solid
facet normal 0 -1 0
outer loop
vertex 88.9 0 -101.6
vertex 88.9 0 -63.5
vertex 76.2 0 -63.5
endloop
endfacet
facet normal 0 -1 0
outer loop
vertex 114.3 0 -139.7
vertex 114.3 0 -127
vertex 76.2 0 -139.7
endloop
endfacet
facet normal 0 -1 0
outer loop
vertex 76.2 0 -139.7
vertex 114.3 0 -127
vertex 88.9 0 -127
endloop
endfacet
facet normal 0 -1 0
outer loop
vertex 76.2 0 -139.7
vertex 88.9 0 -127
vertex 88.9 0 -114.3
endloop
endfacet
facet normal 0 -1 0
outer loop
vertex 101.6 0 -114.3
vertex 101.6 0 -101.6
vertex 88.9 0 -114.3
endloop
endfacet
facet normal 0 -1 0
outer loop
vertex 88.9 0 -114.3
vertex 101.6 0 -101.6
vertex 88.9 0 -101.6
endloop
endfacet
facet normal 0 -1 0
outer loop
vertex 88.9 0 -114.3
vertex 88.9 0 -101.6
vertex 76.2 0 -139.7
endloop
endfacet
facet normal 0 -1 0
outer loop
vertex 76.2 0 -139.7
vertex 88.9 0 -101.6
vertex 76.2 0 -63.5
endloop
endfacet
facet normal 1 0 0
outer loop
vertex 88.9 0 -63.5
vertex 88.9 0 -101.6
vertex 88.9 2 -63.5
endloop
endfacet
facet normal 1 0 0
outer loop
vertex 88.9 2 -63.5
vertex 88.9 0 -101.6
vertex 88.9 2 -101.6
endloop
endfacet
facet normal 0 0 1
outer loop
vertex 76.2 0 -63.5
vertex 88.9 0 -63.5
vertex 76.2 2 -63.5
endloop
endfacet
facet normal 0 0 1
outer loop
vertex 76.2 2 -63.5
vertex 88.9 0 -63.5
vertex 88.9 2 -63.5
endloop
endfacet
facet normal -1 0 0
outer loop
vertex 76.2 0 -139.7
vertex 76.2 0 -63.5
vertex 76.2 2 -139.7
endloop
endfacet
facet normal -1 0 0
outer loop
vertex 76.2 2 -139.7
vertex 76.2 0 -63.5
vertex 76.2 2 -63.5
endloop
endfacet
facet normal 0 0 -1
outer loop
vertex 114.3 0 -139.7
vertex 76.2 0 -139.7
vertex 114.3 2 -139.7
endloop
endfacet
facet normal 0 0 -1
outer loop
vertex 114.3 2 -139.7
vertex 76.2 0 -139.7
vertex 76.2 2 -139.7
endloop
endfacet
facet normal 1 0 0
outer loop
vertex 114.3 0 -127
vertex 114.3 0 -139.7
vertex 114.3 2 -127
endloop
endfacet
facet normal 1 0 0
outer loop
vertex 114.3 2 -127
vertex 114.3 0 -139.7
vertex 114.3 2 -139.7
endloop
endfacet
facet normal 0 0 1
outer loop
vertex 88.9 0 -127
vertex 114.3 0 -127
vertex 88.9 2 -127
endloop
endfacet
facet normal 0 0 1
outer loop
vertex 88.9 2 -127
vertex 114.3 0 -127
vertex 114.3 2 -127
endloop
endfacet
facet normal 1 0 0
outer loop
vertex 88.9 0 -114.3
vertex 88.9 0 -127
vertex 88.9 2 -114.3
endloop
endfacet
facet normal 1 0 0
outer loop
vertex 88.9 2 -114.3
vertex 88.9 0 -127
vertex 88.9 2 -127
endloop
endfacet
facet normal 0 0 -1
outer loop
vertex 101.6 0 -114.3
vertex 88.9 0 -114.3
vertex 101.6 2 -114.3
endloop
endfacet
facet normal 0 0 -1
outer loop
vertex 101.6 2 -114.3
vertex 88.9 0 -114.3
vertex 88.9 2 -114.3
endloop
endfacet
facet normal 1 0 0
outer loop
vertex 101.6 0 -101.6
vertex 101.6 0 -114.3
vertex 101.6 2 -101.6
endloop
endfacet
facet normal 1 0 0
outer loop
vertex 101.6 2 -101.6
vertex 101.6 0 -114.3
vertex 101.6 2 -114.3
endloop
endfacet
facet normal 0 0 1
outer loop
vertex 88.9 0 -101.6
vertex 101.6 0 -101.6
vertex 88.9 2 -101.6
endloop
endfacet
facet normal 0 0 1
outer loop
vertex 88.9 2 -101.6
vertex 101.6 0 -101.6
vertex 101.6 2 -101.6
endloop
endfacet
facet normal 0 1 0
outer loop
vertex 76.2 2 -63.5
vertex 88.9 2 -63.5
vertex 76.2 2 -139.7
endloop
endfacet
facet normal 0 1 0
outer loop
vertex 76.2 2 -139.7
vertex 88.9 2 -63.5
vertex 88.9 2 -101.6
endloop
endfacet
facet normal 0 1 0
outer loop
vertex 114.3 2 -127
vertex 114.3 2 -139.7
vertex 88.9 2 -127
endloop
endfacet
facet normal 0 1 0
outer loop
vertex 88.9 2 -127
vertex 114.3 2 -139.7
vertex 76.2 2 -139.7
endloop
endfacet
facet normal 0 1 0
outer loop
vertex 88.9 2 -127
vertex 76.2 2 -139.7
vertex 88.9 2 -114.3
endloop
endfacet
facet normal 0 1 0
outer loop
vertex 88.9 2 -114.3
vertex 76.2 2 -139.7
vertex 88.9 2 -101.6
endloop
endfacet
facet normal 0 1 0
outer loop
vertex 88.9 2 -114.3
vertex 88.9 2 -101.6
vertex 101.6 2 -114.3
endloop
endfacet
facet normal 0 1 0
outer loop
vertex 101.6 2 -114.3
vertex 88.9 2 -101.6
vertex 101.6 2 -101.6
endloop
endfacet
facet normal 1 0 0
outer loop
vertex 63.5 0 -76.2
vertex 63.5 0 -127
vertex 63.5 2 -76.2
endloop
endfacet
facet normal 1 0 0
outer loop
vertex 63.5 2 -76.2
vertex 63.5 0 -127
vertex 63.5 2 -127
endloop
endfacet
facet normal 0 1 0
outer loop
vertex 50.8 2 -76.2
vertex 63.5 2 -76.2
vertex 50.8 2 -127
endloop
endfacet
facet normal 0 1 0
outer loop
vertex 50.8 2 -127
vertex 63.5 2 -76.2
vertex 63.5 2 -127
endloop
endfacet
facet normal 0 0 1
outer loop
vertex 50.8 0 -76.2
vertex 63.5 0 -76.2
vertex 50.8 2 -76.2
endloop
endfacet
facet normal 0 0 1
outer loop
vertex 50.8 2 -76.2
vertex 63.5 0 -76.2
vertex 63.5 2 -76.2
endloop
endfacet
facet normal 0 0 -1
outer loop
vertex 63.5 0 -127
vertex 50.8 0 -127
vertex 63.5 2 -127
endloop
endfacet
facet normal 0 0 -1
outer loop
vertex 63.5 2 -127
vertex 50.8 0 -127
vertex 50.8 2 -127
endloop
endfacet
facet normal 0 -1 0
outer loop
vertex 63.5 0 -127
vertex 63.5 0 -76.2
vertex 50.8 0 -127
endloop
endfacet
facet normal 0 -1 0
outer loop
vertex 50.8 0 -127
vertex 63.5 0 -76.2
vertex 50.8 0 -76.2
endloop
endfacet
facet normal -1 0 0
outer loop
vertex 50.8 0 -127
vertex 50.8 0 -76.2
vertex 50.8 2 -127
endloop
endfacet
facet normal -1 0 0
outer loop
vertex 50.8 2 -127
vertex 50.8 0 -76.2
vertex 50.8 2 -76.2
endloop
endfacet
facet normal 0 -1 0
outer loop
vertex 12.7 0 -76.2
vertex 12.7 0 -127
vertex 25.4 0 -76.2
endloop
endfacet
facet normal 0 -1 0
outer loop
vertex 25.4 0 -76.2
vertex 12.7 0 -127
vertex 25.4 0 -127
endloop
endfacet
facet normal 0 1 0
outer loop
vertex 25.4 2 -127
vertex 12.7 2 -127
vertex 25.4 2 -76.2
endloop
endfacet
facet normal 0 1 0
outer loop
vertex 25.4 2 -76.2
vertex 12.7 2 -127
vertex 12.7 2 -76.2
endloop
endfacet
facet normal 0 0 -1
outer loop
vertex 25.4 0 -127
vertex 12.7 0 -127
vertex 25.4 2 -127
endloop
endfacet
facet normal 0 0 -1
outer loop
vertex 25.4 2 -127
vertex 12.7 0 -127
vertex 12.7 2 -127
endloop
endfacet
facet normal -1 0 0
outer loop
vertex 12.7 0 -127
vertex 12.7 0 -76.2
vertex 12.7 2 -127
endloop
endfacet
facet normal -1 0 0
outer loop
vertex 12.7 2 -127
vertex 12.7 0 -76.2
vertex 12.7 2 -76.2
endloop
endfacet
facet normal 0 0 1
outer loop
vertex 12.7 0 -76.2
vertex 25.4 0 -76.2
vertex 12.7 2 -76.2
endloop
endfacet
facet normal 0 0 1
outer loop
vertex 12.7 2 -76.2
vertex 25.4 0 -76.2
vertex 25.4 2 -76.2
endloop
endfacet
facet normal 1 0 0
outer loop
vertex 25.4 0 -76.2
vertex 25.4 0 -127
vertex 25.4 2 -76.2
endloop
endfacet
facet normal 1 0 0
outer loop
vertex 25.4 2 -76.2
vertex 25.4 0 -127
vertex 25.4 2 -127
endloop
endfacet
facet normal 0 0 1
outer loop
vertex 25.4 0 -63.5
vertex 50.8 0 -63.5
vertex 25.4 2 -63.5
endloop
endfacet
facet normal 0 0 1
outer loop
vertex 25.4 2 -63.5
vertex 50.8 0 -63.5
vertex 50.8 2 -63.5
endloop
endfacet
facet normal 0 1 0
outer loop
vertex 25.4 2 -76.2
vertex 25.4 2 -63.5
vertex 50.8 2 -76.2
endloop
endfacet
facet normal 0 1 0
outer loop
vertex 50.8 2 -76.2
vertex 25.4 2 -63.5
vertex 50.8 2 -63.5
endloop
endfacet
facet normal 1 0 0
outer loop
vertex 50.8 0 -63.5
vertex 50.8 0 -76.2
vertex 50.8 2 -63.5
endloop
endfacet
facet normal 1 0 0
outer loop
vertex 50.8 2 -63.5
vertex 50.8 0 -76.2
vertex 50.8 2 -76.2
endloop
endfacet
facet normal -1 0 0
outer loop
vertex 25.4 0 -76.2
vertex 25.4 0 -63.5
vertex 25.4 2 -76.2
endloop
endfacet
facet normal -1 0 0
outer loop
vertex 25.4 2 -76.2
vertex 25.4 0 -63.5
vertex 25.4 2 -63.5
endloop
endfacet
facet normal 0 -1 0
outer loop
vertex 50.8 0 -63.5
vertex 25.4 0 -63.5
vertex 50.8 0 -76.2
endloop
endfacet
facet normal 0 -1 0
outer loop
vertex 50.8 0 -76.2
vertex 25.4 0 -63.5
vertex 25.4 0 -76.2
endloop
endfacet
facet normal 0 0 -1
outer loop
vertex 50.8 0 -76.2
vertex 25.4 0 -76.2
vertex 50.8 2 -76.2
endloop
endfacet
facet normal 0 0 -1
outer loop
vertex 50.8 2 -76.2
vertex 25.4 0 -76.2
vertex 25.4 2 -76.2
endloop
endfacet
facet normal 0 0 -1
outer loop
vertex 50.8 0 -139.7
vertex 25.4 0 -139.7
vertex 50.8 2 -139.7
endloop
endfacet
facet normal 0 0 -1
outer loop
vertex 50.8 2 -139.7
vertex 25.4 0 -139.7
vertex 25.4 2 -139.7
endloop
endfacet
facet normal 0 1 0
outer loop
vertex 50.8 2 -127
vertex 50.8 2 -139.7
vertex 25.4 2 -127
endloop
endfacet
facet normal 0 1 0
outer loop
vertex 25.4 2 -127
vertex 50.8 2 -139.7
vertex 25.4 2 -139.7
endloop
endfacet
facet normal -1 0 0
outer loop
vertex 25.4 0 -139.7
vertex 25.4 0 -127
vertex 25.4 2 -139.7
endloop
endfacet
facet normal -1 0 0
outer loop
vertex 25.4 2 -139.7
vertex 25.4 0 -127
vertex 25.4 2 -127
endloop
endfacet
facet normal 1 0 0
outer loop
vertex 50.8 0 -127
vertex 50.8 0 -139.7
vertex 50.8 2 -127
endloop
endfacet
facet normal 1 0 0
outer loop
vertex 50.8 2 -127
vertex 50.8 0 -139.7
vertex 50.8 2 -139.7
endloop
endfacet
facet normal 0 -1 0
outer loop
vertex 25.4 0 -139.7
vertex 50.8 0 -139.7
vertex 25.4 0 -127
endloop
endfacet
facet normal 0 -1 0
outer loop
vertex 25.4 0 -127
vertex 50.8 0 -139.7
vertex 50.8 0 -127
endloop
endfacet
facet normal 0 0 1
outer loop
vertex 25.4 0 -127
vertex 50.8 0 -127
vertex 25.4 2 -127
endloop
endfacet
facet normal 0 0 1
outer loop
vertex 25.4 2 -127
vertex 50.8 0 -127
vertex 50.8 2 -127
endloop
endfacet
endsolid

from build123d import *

# Parameters (mm, degrees)
SKETCH1_W           = 127
SKETCH1_H           = 203.2
BOSS_EXTRUDE1_DEPTH = 2
SKETCH2_W           = 127
SKETCH2_H           = 203.2
CUT_EXTRUDE9_DEPTH  = 2
SKETCH5_W           = 25.4
SKETCH5_H           = 50.8
CUT_EXTRUDE10_DEPTH = 2


with BuildPart() as part:
    # Sketch1 → Boss-Extrude1 (new body)
    with BuildSketch(Plane(origin=(0, 0, 0), x_dir=(1, 0, 0), z_dir=(0, 1, 0))):
        with Locations((63.5, 101.6)):
            Rectangle(SKETCH1_W, SKETCH1_H)
    extrude(amount=BOSS_EXTRUDE1_DEPTH)

    # Sketch2 → Cut-Extrude9 (cut)
    with BuildSketch(Plane(origin=(0, 2, 0), x_dir=(1, 0, 0), z_dir=(0, 1, 0))):
        with Locations((63.5, 101.6)):
            Rectangle(SKETCH2_W, SKETCH2_H)
        Polygon((50.8, 127), (63.5, 127), (63.5, 76.2), (50.8, 76.2), (50.8, 63.5), (25.4, 63.5), (25.4, 76.2), (12.7, 76.2), (12.7, 127), (25.4, 127), (25.4, 139.7), (50.8, 139.7), align=None, mode=Mode.SUBTRACT)
        Polygon((88.9, 101.6), (101.6, 101.6), (101.6, 114.3), (88.9, 114.3), (88.9, 127), (114.3, 127), (114.3, 139.7), (88.9, 139.7), (76.2, 139.7), (76.2, 63.5), (88.9, 63.5), align=None, mode=Mode.SUBTRACT)
    extrude(amount=-CUT_EXTRUDE9_DEPTH, mode=Mode.SUBTRACT)


with BuildPart() as cut_extrude9_piece_1:
    # of the separate pieces the step leaves, piece 1, a body of its own (cut_extrude9_pieces)
    add(part.part.solids().sort_by_distance((50.8, 0, -127))[0])

    # Sketch5 → Cut-Extrude10 (cut)
    with BuildSketch(Plane(origin=(0, 2, 0), x_dir=(1, 0, 0), z_dir=(0, 1, 0))):
        with Locations((38.1, 101.6)):
            Rectangle(SKETCH5_W, SKETCH5_H)
    extrude(amount=-CUT_EXTRUDE10_DEPTH, mode=Mode.SUBTRACT)


with BuildPart() as cut_extrude9_piece_2:
    # of the separate pieces the step leaves, piece 2, a body of its own (cut_extrude9_pieces)
    add(part.part.solids().sort_by_distance((76.2, 0, -63.5))[0])


with BuildPart() as cut_extrude10_piece_1:
    # of the separate pieces the step leaves, piece 1, a body of its own (cut_extrude10_pieces)
    add(cut_extrude9_piece_1.part.solids().sort_by_distance((63.5, 0, -127))[0])


with BuildPart() as cut_extrude10_piece_2:
    # of the separate pieces the step leaves, piece 2, a body of its own (cut_extrude10_pieces)
    add(cut_extrude9_piece_1.part.solids().sort_by_distance((12.7, 0, -76.2))[0])


with BuildPart() as cut_extrude10_piece_3:
    # of the separate pieces the step leaves, piece 3, a body of its own (cut_extrude10_pieces)
    add(cut_extrude9_piece_1.part.solids().sort_by_distance((50.8, 0, -63.5))[0])


with BuildPart() as cut_extrude10_piece_4:
    # of the separate pieces the step leaves, piece 4, a body of its own (cut_extrude10_pieces)
    add(cut_extrude9_piece_1.part.solids().sort_by_distance((25.4, 0, -139.7))[0])


solid = Compound([cut_extrude9_piece_2.part, cut_extrude10_piece_1.part, cut_extrude10_piece_2.part, cut_extrude10_piece_3.part, cut_extrude10_piece_4.part])
